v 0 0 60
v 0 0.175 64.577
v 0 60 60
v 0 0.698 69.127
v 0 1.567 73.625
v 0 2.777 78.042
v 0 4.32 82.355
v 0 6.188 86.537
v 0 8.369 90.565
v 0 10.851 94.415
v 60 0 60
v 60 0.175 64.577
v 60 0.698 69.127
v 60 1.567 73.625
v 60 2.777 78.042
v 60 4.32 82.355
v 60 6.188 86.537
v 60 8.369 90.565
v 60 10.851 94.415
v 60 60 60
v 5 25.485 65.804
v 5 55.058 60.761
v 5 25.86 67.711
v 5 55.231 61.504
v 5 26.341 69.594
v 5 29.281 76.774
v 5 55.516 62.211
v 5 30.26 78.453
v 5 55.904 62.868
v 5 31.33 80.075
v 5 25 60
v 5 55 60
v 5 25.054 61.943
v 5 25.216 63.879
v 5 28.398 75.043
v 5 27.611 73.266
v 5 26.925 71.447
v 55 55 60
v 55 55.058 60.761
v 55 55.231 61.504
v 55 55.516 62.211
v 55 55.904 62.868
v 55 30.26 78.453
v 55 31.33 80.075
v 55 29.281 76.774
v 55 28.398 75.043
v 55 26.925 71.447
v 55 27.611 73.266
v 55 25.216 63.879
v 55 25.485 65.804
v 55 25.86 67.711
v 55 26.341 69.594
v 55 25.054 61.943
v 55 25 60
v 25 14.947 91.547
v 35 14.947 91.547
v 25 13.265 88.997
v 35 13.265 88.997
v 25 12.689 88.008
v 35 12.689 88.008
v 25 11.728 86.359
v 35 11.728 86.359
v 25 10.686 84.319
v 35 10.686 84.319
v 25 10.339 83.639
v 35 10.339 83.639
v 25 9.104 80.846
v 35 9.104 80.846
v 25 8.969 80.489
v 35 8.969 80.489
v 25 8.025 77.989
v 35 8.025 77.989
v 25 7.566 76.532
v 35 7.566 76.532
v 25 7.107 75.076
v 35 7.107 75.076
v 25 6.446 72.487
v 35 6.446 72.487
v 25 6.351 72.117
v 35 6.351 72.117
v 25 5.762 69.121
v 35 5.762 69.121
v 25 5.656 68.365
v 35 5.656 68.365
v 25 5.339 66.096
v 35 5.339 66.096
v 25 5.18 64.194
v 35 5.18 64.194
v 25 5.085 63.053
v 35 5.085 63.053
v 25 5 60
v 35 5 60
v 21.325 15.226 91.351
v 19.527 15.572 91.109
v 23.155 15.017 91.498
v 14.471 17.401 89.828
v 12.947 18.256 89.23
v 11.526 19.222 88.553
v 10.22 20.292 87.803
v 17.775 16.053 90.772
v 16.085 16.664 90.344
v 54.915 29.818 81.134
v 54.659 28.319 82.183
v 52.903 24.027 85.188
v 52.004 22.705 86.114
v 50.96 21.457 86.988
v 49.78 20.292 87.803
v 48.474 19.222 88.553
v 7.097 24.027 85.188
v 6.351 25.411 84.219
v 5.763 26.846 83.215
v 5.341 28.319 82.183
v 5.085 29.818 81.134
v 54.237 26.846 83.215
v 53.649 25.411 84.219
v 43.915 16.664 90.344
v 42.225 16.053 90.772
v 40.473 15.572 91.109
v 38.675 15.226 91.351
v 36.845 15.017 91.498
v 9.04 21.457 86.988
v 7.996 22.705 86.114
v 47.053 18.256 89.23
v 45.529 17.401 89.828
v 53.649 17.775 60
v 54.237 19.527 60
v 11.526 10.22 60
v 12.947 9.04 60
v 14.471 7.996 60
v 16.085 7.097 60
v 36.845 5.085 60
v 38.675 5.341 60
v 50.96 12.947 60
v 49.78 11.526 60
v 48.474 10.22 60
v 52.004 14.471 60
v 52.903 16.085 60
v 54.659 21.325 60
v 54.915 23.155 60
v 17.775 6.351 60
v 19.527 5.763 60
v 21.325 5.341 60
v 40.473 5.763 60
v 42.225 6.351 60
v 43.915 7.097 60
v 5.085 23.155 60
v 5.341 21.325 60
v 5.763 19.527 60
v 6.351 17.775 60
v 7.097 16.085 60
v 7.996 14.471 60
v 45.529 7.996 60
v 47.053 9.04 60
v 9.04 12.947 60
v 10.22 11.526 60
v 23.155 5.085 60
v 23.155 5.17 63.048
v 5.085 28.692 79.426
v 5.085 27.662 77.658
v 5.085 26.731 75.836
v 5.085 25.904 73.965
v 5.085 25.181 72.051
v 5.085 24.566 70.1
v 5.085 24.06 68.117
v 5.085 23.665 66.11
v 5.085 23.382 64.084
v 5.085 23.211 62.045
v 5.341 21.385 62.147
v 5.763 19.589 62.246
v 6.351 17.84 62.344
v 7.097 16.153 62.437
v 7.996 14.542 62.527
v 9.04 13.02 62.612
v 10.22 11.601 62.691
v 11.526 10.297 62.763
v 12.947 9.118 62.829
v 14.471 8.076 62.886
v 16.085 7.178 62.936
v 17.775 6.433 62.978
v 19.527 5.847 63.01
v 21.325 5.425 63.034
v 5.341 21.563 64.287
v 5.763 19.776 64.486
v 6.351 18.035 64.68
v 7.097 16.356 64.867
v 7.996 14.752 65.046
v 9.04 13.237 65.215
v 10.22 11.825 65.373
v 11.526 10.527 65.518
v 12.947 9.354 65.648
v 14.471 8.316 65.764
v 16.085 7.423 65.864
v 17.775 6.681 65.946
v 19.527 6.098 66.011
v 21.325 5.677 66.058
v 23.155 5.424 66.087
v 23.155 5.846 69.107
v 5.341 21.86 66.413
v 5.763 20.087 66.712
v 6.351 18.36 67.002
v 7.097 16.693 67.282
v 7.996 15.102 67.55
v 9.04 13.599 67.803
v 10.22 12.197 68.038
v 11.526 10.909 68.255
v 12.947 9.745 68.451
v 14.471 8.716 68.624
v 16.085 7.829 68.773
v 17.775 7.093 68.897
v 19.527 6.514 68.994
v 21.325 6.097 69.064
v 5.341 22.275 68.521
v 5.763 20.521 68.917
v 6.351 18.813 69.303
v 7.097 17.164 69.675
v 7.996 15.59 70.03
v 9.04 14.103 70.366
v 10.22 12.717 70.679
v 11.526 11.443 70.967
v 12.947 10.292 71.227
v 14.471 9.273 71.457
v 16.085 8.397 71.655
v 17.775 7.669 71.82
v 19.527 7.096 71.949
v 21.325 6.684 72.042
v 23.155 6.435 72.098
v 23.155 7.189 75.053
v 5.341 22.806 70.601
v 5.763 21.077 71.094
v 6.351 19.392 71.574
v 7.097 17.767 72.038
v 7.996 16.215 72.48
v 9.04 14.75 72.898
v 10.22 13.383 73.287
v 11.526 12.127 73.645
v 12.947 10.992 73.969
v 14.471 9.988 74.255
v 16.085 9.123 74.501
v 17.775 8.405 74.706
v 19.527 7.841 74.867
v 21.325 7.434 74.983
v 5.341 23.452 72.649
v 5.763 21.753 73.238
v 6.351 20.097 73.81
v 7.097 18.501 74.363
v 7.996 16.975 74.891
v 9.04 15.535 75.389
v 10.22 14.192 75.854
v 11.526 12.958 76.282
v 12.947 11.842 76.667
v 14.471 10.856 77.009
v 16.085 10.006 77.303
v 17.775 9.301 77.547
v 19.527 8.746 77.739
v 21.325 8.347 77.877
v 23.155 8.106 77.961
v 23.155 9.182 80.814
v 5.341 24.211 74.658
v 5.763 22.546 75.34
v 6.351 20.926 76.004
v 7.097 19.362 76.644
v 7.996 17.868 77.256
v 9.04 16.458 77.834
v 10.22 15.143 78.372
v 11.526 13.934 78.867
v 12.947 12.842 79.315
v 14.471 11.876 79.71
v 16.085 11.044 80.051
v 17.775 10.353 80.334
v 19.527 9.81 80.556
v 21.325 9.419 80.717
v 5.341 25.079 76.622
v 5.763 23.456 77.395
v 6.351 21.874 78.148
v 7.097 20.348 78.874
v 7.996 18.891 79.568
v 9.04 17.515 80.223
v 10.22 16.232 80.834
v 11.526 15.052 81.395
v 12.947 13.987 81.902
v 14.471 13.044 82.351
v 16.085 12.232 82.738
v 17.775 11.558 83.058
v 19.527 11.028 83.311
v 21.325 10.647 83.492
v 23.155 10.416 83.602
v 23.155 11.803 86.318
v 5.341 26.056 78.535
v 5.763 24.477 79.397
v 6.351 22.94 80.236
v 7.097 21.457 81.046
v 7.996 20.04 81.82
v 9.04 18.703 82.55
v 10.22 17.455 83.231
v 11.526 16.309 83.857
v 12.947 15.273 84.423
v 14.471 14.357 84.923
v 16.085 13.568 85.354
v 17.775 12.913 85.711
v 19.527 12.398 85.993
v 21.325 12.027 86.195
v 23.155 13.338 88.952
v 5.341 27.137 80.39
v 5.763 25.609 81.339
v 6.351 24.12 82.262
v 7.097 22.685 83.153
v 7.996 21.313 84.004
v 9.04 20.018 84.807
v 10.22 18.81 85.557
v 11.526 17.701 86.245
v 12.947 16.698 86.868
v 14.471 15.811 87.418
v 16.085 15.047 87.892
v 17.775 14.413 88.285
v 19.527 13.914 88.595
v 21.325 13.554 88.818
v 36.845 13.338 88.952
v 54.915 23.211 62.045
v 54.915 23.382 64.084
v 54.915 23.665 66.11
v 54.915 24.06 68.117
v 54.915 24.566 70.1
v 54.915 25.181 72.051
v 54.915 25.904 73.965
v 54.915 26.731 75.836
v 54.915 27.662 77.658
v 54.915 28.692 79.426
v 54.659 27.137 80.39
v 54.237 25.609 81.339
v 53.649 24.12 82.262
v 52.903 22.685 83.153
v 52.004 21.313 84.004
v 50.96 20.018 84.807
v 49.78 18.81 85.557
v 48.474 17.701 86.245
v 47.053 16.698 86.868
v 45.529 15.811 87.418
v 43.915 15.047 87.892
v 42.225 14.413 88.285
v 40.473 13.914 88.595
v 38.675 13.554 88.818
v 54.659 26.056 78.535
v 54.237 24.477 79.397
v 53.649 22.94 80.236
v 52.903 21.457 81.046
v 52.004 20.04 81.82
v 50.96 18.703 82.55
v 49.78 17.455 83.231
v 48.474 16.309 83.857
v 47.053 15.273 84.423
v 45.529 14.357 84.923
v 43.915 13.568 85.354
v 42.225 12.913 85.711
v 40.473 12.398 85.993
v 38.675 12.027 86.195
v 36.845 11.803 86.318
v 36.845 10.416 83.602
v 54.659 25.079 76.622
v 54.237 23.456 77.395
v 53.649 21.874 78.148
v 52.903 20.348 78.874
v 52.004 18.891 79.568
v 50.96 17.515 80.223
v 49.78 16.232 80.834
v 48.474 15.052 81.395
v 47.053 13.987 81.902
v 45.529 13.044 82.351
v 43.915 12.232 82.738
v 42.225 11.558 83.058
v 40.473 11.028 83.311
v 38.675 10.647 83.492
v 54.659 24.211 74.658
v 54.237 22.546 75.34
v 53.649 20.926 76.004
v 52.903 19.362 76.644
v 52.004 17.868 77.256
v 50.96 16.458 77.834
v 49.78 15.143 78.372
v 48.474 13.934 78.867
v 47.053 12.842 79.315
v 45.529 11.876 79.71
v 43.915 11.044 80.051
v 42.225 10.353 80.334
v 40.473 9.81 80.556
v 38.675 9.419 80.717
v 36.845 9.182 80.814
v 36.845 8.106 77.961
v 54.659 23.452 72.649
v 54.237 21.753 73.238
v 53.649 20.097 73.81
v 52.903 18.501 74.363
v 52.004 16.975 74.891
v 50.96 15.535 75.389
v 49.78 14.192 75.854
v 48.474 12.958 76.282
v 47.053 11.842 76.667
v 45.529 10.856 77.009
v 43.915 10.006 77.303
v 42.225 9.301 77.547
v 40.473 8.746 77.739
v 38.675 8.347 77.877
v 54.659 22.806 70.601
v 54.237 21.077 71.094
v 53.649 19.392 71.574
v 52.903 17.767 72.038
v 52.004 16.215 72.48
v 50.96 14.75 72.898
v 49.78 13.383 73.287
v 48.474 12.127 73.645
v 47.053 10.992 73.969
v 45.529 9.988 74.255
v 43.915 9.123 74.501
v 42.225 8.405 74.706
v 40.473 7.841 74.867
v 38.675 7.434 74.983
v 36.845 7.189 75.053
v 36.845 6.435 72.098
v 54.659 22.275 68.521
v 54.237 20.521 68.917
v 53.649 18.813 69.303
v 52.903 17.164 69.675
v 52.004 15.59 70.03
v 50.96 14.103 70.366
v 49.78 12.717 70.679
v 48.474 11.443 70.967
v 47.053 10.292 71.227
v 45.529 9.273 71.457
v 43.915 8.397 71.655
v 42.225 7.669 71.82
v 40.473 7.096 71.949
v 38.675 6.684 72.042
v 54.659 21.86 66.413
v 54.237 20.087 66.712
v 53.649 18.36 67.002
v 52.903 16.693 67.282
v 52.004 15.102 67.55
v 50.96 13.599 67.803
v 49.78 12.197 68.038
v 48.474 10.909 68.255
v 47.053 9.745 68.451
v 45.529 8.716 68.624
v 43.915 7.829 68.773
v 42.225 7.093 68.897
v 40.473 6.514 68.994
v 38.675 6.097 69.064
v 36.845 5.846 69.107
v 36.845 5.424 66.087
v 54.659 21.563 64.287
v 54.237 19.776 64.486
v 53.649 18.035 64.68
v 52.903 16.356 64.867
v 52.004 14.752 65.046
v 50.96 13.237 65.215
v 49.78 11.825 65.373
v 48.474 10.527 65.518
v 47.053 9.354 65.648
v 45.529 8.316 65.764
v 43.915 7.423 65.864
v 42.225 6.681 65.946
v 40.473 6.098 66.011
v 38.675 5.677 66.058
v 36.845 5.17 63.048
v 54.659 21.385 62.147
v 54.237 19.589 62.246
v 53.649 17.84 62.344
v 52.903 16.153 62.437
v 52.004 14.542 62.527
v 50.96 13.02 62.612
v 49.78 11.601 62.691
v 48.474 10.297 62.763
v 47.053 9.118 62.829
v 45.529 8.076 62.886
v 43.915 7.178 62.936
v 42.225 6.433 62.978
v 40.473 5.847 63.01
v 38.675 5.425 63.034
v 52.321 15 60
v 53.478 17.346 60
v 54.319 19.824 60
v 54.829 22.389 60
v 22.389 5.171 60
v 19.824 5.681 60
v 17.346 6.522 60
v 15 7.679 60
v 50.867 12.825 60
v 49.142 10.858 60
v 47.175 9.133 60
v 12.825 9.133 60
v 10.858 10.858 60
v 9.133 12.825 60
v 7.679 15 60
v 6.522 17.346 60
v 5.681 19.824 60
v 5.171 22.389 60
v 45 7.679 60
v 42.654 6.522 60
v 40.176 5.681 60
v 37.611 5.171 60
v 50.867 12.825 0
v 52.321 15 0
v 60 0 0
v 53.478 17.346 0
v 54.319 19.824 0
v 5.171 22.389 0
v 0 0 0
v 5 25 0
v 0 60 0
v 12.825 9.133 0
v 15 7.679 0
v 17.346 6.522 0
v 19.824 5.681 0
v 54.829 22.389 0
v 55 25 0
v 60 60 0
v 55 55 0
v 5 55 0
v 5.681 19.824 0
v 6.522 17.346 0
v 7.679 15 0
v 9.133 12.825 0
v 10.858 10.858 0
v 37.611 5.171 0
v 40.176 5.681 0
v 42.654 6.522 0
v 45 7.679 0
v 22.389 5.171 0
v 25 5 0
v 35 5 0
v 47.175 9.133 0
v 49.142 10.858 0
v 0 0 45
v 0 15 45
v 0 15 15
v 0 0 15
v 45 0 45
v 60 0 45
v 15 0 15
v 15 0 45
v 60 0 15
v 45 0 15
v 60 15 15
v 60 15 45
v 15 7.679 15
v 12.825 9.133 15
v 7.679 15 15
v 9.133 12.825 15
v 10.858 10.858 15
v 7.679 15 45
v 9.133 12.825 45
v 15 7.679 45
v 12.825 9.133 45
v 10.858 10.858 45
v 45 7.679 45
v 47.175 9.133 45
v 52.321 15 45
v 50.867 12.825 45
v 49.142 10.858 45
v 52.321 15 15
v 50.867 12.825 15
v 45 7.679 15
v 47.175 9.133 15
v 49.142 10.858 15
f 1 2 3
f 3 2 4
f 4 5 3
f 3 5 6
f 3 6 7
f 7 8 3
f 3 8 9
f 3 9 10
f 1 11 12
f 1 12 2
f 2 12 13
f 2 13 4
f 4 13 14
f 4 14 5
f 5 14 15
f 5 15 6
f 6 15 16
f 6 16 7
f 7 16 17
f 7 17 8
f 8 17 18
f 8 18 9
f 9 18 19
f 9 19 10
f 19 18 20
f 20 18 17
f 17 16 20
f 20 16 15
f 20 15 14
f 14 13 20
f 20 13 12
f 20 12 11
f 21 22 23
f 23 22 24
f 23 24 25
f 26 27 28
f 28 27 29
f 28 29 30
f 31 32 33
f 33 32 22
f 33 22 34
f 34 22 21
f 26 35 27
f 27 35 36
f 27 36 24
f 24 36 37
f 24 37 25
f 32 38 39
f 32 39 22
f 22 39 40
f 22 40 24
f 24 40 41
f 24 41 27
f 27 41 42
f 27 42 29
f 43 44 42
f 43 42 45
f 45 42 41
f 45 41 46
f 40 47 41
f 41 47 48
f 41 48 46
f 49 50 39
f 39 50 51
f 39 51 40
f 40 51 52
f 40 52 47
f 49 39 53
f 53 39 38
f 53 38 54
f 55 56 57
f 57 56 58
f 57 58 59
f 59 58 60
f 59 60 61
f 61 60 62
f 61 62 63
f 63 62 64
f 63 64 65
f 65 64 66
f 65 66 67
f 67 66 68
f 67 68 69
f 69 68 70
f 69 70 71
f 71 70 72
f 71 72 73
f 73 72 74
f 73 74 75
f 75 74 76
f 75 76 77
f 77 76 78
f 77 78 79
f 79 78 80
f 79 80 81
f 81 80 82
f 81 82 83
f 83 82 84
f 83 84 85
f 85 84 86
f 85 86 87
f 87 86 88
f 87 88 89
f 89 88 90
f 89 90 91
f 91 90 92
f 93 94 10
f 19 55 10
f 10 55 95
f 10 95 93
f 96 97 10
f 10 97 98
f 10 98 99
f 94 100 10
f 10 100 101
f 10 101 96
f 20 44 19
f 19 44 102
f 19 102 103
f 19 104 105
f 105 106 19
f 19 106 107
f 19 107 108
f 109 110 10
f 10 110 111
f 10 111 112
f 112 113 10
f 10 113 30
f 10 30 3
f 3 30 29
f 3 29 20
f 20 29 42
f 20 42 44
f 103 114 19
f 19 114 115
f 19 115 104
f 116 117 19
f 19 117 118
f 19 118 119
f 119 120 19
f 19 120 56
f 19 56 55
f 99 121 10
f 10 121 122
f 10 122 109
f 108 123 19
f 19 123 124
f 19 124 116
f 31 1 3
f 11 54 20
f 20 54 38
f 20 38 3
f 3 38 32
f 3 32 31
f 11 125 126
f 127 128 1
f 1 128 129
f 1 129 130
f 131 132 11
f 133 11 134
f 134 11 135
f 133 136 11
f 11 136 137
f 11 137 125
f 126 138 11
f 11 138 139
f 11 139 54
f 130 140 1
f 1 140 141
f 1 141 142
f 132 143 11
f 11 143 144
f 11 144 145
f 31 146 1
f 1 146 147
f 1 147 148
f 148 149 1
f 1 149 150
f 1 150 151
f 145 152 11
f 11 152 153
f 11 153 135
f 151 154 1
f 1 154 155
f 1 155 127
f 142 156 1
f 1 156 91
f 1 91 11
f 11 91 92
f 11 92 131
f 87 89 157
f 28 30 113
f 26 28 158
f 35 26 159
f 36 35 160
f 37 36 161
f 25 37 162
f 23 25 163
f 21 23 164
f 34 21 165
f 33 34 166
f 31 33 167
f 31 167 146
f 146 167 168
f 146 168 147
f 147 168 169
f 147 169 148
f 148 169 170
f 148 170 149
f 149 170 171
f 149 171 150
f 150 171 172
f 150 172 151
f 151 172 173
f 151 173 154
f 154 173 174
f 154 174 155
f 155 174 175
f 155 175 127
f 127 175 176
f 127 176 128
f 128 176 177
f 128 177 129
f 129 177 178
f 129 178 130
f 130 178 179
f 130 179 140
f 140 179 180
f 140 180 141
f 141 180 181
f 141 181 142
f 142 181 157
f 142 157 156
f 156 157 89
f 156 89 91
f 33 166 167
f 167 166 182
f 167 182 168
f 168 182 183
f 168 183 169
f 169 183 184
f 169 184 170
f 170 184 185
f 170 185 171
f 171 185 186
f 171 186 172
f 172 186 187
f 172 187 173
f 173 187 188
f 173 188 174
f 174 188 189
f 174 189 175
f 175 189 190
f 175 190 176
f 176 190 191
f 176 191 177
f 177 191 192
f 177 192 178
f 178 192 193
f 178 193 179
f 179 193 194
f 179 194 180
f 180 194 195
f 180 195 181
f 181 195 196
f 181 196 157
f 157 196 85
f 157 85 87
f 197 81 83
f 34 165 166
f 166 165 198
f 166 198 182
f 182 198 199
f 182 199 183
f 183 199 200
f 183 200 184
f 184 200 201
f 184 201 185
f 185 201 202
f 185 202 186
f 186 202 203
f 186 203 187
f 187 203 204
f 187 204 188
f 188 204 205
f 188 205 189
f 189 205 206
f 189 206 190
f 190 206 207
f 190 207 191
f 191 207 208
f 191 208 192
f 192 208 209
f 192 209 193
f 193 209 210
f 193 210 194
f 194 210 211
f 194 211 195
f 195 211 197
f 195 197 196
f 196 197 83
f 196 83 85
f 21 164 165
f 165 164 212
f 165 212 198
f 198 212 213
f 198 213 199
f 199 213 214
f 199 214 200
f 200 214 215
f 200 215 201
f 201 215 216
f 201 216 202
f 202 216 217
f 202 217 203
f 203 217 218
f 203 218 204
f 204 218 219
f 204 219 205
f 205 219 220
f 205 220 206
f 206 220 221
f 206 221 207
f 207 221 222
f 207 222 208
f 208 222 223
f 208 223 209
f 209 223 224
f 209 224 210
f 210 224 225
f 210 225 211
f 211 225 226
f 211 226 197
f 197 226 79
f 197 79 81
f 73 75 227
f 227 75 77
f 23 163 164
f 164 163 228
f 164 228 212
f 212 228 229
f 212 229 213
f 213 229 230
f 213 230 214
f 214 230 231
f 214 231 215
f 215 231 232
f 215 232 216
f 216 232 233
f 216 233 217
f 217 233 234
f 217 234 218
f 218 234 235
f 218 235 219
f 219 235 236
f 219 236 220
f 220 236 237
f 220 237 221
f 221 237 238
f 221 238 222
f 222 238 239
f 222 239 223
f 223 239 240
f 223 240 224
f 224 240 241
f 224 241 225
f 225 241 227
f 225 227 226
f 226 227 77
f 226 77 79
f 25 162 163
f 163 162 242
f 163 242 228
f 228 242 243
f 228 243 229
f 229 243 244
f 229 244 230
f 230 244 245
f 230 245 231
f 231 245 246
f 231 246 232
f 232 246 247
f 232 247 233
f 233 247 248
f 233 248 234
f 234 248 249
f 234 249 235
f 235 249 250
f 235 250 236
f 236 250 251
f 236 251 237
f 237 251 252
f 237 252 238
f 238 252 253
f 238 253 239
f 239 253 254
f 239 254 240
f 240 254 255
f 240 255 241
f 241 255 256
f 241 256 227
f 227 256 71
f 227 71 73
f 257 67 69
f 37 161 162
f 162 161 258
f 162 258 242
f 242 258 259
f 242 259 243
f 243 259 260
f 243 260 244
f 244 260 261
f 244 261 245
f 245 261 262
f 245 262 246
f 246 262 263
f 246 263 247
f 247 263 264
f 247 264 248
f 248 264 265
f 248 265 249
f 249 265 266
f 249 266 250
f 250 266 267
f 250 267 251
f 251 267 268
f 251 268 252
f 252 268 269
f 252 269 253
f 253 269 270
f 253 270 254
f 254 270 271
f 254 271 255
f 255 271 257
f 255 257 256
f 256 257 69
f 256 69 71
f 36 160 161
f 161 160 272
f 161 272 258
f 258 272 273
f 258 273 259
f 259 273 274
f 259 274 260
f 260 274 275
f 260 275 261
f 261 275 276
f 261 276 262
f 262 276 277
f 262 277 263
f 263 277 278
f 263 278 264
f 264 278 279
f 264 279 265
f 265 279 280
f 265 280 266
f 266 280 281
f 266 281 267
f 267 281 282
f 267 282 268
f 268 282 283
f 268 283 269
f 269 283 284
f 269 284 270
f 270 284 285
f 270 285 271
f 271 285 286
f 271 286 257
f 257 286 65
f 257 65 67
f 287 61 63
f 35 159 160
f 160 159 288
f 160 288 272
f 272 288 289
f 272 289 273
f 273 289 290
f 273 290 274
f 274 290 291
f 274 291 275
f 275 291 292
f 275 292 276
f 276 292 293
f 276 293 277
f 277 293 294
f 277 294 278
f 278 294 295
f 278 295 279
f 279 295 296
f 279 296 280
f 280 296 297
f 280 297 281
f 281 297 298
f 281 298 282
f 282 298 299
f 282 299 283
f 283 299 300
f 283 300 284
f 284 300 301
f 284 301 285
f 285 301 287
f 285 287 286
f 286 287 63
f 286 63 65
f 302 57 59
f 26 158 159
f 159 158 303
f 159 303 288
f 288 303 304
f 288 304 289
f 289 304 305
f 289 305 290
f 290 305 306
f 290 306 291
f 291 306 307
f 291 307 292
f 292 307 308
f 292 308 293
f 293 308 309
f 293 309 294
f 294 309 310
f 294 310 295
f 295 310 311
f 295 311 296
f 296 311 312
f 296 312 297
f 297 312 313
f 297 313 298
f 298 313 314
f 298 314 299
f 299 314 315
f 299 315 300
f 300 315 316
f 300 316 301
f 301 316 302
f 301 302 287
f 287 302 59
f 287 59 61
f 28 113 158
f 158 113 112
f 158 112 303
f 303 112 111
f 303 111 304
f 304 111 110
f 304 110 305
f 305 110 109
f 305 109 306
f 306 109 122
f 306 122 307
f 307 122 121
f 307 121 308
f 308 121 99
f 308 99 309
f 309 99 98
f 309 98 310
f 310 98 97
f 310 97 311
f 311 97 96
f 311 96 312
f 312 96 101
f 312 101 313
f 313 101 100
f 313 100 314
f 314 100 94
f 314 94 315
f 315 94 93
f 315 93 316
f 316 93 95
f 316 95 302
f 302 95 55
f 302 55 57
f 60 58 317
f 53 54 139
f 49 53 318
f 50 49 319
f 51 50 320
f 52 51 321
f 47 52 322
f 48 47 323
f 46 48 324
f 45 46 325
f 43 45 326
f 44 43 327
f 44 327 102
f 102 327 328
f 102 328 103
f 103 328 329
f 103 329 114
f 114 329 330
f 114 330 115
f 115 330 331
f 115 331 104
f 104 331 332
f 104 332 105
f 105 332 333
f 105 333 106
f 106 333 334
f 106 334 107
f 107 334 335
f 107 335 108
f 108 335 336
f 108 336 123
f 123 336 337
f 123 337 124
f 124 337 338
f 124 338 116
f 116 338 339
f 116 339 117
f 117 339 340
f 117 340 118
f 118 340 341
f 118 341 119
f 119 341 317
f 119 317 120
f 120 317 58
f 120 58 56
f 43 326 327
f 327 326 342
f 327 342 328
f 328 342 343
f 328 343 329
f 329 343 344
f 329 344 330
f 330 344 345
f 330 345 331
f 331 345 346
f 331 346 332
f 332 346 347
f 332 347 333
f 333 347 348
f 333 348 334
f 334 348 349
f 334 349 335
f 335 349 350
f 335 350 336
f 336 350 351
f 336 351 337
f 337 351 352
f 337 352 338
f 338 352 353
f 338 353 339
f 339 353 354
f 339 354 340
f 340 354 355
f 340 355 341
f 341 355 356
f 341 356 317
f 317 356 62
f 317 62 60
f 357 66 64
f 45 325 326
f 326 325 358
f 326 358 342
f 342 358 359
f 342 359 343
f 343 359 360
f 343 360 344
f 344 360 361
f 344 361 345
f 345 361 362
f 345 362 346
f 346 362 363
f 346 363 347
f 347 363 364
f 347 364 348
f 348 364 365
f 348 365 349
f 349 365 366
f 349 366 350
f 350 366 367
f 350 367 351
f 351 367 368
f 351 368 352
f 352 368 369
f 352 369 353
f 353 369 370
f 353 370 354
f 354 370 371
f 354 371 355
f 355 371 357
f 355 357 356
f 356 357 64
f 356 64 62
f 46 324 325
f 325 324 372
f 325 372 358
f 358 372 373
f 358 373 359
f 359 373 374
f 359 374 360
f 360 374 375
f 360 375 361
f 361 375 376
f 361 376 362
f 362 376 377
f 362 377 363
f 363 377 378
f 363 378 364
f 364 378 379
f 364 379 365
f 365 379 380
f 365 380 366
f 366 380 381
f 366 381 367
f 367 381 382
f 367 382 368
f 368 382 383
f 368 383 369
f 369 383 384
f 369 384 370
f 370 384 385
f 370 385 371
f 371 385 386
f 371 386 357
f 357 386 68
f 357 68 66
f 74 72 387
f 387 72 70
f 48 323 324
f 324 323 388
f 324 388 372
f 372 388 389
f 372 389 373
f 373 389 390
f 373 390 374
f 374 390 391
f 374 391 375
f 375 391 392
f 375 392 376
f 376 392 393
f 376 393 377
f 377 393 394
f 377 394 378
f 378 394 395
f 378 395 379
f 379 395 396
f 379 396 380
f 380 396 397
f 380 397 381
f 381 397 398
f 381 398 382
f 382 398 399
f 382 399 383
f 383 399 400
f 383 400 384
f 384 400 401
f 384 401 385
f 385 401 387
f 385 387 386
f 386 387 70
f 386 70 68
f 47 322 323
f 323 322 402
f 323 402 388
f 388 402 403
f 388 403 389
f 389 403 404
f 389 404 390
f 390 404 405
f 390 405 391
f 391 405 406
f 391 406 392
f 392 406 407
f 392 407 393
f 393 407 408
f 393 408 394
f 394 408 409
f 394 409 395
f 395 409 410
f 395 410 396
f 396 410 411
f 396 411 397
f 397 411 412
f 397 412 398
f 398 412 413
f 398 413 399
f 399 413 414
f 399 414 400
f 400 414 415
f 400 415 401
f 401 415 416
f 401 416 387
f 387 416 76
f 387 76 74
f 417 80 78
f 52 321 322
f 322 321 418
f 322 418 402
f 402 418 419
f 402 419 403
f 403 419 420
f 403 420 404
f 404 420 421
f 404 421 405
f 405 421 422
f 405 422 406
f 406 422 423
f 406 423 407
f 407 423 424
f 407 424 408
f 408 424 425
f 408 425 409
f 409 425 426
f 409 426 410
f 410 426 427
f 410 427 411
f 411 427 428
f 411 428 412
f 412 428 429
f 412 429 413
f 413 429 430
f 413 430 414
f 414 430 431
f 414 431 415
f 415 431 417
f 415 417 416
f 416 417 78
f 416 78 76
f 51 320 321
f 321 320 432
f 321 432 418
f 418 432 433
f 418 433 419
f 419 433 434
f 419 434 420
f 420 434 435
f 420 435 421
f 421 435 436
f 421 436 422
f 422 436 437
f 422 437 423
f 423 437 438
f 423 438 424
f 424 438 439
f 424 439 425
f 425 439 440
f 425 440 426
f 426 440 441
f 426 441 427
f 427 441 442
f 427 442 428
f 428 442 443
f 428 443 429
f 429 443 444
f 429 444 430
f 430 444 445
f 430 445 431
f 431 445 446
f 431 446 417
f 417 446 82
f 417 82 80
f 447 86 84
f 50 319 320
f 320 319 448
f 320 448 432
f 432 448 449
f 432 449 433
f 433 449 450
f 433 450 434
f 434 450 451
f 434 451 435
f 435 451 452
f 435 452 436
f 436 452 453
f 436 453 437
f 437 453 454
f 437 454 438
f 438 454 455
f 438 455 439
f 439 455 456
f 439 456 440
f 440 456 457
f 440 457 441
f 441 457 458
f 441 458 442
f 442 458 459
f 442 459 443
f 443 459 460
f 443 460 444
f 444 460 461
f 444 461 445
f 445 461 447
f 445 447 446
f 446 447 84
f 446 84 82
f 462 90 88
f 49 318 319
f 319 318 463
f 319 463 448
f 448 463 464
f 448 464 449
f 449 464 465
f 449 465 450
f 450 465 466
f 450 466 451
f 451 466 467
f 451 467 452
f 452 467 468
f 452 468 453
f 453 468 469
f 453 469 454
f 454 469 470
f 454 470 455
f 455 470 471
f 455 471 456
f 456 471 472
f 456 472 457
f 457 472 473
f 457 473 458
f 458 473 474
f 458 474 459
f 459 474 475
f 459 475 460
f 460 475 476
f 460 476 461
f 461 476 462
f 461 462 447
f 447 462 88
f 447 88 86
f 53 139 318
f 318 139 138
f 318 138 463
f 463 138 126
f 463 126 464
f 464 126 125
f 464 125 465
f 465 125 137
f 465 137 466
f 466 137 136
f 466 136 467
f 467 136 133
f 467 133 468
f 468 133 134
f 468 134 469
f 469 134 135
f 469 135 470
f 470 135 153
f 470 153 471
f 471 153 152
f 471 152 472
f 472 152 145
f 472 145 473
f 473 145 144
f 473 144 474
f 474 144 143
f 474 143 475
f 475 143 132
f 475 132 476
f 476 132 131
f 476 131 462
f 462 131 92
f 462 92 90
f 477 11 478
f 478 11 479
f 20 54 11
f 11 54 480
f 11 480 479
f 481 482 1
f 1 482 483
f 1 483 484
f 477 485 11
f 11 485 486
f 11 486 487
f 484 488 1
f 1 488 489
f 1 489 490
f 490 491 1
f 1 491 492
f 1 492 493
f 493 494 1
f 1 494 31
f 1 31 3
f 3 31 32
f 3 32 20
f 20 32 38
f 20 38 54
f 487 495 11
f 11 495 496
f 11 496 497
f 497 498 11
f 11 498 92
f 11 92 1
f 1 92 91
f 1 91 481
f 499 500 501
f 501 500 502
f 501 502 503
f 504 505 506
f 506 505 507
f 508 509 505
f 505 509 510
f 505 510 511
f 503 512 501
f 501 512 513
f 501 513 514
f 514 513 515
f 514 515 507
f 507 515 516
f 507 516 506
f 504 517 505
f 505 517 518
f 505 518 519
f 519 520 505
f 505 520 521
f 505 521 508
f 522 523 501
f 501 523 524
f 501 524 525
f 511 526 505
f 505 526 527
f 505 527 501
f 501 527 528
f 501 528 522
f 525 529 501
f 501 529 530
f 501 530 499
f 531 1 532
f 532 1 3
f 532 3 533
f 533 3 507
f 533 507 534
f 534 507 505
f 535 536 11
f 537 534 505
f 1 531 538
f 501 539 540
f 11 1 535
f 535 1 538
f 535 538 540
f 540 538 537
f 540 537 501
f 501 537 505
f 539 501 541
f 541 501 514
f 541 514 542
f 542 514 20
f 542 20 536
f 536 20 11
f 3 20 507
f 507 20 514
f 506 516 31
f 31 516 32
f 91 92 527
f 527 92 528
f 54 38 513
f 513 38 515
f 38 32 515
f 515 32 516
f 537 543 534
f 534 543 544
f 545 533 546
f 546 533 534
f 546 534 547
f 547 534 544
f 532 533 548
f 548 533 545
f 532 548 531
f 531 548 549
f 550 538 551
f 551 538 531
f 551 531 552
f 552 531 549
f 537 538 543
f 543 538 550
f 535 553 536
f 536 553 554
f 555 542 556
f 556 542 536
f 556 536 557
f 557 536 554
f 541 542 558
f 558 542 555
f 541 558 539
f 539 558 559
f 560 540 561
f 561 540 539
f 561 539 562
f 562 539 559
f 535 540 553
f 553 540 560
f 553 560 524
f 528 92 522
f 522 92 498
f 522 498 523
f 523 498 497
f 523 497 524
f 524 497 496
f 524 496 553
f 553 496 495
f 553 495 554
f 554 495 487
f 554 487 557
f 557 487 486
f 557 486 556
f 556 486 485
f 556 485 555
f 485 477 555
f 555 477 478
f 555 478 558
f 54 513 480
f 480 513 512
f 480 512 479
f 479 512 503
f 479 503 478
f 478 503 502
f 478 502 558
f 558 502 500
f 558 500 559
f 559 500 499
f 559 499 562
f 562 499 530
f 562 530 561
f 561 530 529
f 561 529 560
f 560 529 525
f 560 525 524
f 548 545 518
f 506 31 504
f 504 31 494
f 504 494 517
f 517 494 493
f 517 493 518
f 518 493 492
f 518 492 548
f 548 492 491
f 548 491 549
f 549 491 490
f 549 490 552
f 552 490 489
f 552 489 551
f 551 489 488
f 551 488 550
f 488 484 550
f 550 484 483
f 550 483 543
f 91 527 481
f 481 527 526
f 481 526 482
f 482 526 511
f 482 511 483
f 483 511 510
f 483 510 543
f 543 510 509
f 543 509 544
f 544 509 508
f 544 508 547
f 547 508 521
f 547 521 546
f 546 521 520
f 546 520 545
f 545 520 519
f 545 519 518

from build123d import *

# Parameters (mm, degrees)
ESQUISSE1_W             = 60
ESQUISSE1_H             = 60
ESQUISSE1_W_2           = 50
ESQUISSE1_H_2           = 50
BOSS_EXTRU_3_DEPTH      = 60
ESQUISSE10_W            = 60
ESQUISSE10_H            = 60
ESQUISSE10_W_2          = 50
ESQUISSE10_H_2          = 50
R_VOLUTION1_ANGLE       = 35
ESQUISSE11_W            = 30
ESQUISSE11_H            = 15
ENL_V_MAT_EXTRU_3_DEPTH = 15
ESQUISSE12_W            = 30
ESQUISSE12_H            = 15
ENL_V_MAT_EXTRU_4_DEPTH = 15
CONG_1_DEPTH            = 15
CONG_1_START            = 45
CONG_1_2_DEPTH          = 15
CONG_1_START_2          = 15
CONG_1_3_DEPTH          = 30
CONG_3_R                = 20
CONG_4_R                = 20
CONG_5_DEPTH            = 15
CONG_5_START            = 45
CONG_5_2_DEPTH          = 15
CONG_5_START_2          = 15
CONG_5_3_DEPTH          = 30


with BuildPart() as part:
    # Esquisse1 → Boss.-Extru.3 (new body)
    with BuildSketch(Plane.XY):
        with Locations((30, 30)):
            Rectangle(ESQUISSE1_W, ESQUISSE1_H)
        with Locations((30, 30)):
            Rectangle(ESQUISSE1_W_2, ESQUISSE1_H_2, mode=Mode.SUBTRACT)
    extrude(amount=BOSS_EXTRU_3_DEPTH)

    # Esquisse11 → Enlèv. mat.-Extru.3 (cut)
    with BuildSketch(Plane.ZY):
        with Locations((30, 7.5)):
            Rectangle(ESQUISSE11_W, ESQUISSE11_H)
    extrude(amount=-ENL_V_MAT_EXTRU_3_DEPTH, mode=Mode.SUBTRACT)

    # Esquisse12 → Enlèv. mat.-Extru.4 (cut)
    with BuildSketch(Plane(origin=(60, 0, 0), x_dir=(0, 0, -1), z_dir=(1, 0, 0))):
        with Locations((-30, 7.5)):
            Rectangle(ESQUISSE12_W, ESQUISSE12_H)
    extrude(amount=-ENL_V_MAT_EXTRU_4_DEPTH, mode=Mode.SUBTRACT)

    # Congé1: read off the stored shape, not the designer's step
    # Congé1 outline → Congé1 (add)
    with BuildSketch(Plane.XY):
        with BuildLine():
            Line((55, 5), (55, 25))
            ThreePointArc((55, 25), (49.142135624, 10.857864376), (35, 5))
            Line((35, 5), (55, 5))
        make_face()
    extrude(amount=CONG_1_DEPTH)

    # Cong_1 2 outline → Cong_1 2 (add)
    with BuildSketch(Plane.XY.offset(CONG_1_START)):
        with BuildLine():
            Line((55, 5), (55, 25))
            ThreePointArc((55, 25), (49.142135624, 10.857864376), (35, 5))
            Line((35, 5), (55, 5))
        make_face()
    extrude(amount=CONG_1_2_DEPTH)

    # Cong_1 3 outline → Cong_1 3 (add)
    with BuildSketch(Plane.XY.offset(CONG_1_START_2)):
        with BuildLine():
            Line((52.320508076, 15), (55, 15))
            Line((55, 15), (55, 25))
            ThreePointArc((55, 25), (54.318516526, 19.823619098), (52.320508076, 15))
        make_face()
        with BuildLine():
            Line((45, 5), (45, 7.679491924))
            ThreePointArc((45, 7.679491924), (40.176380902, 5.681483474), (35, 5))
            Line((35, 5), (45, 5))
        make_face()
    extrude(amount=CONG_1_3_DEPTH)

    # Congé5: read off the stored shape, not the designer's step
    # Congé5 outline → Congé5 (add)
    with BuildSketch(Plane.XY):
        with BuildLine():
            Line((5, 25), (5, 5))
            Line((5, 5), (25, 5))
            ThreePointArc((25, 5), (10.857864376, 10.857864376), (5, 25))
        make_face()
    extrude(amount=CONG_5_DEPTH)

    # Cong_5 2 outline → Cong_5 2 (add)
    with BuildSketch(Plane.XY.offset(CONG_5_START)):
        with BuildLine():
            Line((5, 25), (5, 5))
            Line((5, 5), (25, 5))
            ThreePointArc((25, 5), (10.857864376, 10.857864376), (5, 25))
        make_face()
    extrude(amount=CONG_5_2_DEPTH)

    # Cong_5 3 outline → Cong_5 3 (add)
    with BuildSketch(Plane.XY.offset(CONG_5_START_2)):
        with BuildLine():
            Line((5, 15), (7.679491924, 15))
            ThreePointArc((7.679491924, 15), (5.681483474, 19.823619098), (5, 25))
            Line((5, 25), (5, 15))
        make_face()
        with BuildLine():
            ThreePointArc((25, 5), (19.823619098, 5.681483474), (15, 7.679491924))
            Line((15, 7.679491924), (15, 5))
            Line((15, 5), (25, 5))
        make_face()
    extrude(amount=CONG_5_3_DEPTH)


with BuildPart() as body_2:
    # Esquisse10 → Révolution1 (revolve)
    with BuildSketch(Plane.XY.offset(60)):
        with Locations((30, 30)):
            Rectangle(ESQUISSE10_W, ESQUISSE10_H)
        with Locations((30, 30)):
            Rectangle(ESQUISSE10_W_2, ESQUISSE10_H_2, mode=Mode.SUBTRACT)
    revolve(axis=Axis((0, 60, 60), (-1, 0, 0)), revolution_arc=R_VOLUTION1_ANGLE)

    # Congé3
    cong_3_edges = [body_2.edges().sort_by_distance(p)[0] for p in [
        (5, 7.545567709, 76.538818973),
    ]]
    fillet(cong_3_edges, radius=CONG_3_R)

    # Congé4
    cong_4_edges = [body_2.edges().sort_by_distance(p)[0] for p in [
        (55, 7.545567709, 76.538818973),
    ]]
    fillet(cong_4_edges, radius=CONG_4_R)


solid = Compound([part.part, body_2.part])
